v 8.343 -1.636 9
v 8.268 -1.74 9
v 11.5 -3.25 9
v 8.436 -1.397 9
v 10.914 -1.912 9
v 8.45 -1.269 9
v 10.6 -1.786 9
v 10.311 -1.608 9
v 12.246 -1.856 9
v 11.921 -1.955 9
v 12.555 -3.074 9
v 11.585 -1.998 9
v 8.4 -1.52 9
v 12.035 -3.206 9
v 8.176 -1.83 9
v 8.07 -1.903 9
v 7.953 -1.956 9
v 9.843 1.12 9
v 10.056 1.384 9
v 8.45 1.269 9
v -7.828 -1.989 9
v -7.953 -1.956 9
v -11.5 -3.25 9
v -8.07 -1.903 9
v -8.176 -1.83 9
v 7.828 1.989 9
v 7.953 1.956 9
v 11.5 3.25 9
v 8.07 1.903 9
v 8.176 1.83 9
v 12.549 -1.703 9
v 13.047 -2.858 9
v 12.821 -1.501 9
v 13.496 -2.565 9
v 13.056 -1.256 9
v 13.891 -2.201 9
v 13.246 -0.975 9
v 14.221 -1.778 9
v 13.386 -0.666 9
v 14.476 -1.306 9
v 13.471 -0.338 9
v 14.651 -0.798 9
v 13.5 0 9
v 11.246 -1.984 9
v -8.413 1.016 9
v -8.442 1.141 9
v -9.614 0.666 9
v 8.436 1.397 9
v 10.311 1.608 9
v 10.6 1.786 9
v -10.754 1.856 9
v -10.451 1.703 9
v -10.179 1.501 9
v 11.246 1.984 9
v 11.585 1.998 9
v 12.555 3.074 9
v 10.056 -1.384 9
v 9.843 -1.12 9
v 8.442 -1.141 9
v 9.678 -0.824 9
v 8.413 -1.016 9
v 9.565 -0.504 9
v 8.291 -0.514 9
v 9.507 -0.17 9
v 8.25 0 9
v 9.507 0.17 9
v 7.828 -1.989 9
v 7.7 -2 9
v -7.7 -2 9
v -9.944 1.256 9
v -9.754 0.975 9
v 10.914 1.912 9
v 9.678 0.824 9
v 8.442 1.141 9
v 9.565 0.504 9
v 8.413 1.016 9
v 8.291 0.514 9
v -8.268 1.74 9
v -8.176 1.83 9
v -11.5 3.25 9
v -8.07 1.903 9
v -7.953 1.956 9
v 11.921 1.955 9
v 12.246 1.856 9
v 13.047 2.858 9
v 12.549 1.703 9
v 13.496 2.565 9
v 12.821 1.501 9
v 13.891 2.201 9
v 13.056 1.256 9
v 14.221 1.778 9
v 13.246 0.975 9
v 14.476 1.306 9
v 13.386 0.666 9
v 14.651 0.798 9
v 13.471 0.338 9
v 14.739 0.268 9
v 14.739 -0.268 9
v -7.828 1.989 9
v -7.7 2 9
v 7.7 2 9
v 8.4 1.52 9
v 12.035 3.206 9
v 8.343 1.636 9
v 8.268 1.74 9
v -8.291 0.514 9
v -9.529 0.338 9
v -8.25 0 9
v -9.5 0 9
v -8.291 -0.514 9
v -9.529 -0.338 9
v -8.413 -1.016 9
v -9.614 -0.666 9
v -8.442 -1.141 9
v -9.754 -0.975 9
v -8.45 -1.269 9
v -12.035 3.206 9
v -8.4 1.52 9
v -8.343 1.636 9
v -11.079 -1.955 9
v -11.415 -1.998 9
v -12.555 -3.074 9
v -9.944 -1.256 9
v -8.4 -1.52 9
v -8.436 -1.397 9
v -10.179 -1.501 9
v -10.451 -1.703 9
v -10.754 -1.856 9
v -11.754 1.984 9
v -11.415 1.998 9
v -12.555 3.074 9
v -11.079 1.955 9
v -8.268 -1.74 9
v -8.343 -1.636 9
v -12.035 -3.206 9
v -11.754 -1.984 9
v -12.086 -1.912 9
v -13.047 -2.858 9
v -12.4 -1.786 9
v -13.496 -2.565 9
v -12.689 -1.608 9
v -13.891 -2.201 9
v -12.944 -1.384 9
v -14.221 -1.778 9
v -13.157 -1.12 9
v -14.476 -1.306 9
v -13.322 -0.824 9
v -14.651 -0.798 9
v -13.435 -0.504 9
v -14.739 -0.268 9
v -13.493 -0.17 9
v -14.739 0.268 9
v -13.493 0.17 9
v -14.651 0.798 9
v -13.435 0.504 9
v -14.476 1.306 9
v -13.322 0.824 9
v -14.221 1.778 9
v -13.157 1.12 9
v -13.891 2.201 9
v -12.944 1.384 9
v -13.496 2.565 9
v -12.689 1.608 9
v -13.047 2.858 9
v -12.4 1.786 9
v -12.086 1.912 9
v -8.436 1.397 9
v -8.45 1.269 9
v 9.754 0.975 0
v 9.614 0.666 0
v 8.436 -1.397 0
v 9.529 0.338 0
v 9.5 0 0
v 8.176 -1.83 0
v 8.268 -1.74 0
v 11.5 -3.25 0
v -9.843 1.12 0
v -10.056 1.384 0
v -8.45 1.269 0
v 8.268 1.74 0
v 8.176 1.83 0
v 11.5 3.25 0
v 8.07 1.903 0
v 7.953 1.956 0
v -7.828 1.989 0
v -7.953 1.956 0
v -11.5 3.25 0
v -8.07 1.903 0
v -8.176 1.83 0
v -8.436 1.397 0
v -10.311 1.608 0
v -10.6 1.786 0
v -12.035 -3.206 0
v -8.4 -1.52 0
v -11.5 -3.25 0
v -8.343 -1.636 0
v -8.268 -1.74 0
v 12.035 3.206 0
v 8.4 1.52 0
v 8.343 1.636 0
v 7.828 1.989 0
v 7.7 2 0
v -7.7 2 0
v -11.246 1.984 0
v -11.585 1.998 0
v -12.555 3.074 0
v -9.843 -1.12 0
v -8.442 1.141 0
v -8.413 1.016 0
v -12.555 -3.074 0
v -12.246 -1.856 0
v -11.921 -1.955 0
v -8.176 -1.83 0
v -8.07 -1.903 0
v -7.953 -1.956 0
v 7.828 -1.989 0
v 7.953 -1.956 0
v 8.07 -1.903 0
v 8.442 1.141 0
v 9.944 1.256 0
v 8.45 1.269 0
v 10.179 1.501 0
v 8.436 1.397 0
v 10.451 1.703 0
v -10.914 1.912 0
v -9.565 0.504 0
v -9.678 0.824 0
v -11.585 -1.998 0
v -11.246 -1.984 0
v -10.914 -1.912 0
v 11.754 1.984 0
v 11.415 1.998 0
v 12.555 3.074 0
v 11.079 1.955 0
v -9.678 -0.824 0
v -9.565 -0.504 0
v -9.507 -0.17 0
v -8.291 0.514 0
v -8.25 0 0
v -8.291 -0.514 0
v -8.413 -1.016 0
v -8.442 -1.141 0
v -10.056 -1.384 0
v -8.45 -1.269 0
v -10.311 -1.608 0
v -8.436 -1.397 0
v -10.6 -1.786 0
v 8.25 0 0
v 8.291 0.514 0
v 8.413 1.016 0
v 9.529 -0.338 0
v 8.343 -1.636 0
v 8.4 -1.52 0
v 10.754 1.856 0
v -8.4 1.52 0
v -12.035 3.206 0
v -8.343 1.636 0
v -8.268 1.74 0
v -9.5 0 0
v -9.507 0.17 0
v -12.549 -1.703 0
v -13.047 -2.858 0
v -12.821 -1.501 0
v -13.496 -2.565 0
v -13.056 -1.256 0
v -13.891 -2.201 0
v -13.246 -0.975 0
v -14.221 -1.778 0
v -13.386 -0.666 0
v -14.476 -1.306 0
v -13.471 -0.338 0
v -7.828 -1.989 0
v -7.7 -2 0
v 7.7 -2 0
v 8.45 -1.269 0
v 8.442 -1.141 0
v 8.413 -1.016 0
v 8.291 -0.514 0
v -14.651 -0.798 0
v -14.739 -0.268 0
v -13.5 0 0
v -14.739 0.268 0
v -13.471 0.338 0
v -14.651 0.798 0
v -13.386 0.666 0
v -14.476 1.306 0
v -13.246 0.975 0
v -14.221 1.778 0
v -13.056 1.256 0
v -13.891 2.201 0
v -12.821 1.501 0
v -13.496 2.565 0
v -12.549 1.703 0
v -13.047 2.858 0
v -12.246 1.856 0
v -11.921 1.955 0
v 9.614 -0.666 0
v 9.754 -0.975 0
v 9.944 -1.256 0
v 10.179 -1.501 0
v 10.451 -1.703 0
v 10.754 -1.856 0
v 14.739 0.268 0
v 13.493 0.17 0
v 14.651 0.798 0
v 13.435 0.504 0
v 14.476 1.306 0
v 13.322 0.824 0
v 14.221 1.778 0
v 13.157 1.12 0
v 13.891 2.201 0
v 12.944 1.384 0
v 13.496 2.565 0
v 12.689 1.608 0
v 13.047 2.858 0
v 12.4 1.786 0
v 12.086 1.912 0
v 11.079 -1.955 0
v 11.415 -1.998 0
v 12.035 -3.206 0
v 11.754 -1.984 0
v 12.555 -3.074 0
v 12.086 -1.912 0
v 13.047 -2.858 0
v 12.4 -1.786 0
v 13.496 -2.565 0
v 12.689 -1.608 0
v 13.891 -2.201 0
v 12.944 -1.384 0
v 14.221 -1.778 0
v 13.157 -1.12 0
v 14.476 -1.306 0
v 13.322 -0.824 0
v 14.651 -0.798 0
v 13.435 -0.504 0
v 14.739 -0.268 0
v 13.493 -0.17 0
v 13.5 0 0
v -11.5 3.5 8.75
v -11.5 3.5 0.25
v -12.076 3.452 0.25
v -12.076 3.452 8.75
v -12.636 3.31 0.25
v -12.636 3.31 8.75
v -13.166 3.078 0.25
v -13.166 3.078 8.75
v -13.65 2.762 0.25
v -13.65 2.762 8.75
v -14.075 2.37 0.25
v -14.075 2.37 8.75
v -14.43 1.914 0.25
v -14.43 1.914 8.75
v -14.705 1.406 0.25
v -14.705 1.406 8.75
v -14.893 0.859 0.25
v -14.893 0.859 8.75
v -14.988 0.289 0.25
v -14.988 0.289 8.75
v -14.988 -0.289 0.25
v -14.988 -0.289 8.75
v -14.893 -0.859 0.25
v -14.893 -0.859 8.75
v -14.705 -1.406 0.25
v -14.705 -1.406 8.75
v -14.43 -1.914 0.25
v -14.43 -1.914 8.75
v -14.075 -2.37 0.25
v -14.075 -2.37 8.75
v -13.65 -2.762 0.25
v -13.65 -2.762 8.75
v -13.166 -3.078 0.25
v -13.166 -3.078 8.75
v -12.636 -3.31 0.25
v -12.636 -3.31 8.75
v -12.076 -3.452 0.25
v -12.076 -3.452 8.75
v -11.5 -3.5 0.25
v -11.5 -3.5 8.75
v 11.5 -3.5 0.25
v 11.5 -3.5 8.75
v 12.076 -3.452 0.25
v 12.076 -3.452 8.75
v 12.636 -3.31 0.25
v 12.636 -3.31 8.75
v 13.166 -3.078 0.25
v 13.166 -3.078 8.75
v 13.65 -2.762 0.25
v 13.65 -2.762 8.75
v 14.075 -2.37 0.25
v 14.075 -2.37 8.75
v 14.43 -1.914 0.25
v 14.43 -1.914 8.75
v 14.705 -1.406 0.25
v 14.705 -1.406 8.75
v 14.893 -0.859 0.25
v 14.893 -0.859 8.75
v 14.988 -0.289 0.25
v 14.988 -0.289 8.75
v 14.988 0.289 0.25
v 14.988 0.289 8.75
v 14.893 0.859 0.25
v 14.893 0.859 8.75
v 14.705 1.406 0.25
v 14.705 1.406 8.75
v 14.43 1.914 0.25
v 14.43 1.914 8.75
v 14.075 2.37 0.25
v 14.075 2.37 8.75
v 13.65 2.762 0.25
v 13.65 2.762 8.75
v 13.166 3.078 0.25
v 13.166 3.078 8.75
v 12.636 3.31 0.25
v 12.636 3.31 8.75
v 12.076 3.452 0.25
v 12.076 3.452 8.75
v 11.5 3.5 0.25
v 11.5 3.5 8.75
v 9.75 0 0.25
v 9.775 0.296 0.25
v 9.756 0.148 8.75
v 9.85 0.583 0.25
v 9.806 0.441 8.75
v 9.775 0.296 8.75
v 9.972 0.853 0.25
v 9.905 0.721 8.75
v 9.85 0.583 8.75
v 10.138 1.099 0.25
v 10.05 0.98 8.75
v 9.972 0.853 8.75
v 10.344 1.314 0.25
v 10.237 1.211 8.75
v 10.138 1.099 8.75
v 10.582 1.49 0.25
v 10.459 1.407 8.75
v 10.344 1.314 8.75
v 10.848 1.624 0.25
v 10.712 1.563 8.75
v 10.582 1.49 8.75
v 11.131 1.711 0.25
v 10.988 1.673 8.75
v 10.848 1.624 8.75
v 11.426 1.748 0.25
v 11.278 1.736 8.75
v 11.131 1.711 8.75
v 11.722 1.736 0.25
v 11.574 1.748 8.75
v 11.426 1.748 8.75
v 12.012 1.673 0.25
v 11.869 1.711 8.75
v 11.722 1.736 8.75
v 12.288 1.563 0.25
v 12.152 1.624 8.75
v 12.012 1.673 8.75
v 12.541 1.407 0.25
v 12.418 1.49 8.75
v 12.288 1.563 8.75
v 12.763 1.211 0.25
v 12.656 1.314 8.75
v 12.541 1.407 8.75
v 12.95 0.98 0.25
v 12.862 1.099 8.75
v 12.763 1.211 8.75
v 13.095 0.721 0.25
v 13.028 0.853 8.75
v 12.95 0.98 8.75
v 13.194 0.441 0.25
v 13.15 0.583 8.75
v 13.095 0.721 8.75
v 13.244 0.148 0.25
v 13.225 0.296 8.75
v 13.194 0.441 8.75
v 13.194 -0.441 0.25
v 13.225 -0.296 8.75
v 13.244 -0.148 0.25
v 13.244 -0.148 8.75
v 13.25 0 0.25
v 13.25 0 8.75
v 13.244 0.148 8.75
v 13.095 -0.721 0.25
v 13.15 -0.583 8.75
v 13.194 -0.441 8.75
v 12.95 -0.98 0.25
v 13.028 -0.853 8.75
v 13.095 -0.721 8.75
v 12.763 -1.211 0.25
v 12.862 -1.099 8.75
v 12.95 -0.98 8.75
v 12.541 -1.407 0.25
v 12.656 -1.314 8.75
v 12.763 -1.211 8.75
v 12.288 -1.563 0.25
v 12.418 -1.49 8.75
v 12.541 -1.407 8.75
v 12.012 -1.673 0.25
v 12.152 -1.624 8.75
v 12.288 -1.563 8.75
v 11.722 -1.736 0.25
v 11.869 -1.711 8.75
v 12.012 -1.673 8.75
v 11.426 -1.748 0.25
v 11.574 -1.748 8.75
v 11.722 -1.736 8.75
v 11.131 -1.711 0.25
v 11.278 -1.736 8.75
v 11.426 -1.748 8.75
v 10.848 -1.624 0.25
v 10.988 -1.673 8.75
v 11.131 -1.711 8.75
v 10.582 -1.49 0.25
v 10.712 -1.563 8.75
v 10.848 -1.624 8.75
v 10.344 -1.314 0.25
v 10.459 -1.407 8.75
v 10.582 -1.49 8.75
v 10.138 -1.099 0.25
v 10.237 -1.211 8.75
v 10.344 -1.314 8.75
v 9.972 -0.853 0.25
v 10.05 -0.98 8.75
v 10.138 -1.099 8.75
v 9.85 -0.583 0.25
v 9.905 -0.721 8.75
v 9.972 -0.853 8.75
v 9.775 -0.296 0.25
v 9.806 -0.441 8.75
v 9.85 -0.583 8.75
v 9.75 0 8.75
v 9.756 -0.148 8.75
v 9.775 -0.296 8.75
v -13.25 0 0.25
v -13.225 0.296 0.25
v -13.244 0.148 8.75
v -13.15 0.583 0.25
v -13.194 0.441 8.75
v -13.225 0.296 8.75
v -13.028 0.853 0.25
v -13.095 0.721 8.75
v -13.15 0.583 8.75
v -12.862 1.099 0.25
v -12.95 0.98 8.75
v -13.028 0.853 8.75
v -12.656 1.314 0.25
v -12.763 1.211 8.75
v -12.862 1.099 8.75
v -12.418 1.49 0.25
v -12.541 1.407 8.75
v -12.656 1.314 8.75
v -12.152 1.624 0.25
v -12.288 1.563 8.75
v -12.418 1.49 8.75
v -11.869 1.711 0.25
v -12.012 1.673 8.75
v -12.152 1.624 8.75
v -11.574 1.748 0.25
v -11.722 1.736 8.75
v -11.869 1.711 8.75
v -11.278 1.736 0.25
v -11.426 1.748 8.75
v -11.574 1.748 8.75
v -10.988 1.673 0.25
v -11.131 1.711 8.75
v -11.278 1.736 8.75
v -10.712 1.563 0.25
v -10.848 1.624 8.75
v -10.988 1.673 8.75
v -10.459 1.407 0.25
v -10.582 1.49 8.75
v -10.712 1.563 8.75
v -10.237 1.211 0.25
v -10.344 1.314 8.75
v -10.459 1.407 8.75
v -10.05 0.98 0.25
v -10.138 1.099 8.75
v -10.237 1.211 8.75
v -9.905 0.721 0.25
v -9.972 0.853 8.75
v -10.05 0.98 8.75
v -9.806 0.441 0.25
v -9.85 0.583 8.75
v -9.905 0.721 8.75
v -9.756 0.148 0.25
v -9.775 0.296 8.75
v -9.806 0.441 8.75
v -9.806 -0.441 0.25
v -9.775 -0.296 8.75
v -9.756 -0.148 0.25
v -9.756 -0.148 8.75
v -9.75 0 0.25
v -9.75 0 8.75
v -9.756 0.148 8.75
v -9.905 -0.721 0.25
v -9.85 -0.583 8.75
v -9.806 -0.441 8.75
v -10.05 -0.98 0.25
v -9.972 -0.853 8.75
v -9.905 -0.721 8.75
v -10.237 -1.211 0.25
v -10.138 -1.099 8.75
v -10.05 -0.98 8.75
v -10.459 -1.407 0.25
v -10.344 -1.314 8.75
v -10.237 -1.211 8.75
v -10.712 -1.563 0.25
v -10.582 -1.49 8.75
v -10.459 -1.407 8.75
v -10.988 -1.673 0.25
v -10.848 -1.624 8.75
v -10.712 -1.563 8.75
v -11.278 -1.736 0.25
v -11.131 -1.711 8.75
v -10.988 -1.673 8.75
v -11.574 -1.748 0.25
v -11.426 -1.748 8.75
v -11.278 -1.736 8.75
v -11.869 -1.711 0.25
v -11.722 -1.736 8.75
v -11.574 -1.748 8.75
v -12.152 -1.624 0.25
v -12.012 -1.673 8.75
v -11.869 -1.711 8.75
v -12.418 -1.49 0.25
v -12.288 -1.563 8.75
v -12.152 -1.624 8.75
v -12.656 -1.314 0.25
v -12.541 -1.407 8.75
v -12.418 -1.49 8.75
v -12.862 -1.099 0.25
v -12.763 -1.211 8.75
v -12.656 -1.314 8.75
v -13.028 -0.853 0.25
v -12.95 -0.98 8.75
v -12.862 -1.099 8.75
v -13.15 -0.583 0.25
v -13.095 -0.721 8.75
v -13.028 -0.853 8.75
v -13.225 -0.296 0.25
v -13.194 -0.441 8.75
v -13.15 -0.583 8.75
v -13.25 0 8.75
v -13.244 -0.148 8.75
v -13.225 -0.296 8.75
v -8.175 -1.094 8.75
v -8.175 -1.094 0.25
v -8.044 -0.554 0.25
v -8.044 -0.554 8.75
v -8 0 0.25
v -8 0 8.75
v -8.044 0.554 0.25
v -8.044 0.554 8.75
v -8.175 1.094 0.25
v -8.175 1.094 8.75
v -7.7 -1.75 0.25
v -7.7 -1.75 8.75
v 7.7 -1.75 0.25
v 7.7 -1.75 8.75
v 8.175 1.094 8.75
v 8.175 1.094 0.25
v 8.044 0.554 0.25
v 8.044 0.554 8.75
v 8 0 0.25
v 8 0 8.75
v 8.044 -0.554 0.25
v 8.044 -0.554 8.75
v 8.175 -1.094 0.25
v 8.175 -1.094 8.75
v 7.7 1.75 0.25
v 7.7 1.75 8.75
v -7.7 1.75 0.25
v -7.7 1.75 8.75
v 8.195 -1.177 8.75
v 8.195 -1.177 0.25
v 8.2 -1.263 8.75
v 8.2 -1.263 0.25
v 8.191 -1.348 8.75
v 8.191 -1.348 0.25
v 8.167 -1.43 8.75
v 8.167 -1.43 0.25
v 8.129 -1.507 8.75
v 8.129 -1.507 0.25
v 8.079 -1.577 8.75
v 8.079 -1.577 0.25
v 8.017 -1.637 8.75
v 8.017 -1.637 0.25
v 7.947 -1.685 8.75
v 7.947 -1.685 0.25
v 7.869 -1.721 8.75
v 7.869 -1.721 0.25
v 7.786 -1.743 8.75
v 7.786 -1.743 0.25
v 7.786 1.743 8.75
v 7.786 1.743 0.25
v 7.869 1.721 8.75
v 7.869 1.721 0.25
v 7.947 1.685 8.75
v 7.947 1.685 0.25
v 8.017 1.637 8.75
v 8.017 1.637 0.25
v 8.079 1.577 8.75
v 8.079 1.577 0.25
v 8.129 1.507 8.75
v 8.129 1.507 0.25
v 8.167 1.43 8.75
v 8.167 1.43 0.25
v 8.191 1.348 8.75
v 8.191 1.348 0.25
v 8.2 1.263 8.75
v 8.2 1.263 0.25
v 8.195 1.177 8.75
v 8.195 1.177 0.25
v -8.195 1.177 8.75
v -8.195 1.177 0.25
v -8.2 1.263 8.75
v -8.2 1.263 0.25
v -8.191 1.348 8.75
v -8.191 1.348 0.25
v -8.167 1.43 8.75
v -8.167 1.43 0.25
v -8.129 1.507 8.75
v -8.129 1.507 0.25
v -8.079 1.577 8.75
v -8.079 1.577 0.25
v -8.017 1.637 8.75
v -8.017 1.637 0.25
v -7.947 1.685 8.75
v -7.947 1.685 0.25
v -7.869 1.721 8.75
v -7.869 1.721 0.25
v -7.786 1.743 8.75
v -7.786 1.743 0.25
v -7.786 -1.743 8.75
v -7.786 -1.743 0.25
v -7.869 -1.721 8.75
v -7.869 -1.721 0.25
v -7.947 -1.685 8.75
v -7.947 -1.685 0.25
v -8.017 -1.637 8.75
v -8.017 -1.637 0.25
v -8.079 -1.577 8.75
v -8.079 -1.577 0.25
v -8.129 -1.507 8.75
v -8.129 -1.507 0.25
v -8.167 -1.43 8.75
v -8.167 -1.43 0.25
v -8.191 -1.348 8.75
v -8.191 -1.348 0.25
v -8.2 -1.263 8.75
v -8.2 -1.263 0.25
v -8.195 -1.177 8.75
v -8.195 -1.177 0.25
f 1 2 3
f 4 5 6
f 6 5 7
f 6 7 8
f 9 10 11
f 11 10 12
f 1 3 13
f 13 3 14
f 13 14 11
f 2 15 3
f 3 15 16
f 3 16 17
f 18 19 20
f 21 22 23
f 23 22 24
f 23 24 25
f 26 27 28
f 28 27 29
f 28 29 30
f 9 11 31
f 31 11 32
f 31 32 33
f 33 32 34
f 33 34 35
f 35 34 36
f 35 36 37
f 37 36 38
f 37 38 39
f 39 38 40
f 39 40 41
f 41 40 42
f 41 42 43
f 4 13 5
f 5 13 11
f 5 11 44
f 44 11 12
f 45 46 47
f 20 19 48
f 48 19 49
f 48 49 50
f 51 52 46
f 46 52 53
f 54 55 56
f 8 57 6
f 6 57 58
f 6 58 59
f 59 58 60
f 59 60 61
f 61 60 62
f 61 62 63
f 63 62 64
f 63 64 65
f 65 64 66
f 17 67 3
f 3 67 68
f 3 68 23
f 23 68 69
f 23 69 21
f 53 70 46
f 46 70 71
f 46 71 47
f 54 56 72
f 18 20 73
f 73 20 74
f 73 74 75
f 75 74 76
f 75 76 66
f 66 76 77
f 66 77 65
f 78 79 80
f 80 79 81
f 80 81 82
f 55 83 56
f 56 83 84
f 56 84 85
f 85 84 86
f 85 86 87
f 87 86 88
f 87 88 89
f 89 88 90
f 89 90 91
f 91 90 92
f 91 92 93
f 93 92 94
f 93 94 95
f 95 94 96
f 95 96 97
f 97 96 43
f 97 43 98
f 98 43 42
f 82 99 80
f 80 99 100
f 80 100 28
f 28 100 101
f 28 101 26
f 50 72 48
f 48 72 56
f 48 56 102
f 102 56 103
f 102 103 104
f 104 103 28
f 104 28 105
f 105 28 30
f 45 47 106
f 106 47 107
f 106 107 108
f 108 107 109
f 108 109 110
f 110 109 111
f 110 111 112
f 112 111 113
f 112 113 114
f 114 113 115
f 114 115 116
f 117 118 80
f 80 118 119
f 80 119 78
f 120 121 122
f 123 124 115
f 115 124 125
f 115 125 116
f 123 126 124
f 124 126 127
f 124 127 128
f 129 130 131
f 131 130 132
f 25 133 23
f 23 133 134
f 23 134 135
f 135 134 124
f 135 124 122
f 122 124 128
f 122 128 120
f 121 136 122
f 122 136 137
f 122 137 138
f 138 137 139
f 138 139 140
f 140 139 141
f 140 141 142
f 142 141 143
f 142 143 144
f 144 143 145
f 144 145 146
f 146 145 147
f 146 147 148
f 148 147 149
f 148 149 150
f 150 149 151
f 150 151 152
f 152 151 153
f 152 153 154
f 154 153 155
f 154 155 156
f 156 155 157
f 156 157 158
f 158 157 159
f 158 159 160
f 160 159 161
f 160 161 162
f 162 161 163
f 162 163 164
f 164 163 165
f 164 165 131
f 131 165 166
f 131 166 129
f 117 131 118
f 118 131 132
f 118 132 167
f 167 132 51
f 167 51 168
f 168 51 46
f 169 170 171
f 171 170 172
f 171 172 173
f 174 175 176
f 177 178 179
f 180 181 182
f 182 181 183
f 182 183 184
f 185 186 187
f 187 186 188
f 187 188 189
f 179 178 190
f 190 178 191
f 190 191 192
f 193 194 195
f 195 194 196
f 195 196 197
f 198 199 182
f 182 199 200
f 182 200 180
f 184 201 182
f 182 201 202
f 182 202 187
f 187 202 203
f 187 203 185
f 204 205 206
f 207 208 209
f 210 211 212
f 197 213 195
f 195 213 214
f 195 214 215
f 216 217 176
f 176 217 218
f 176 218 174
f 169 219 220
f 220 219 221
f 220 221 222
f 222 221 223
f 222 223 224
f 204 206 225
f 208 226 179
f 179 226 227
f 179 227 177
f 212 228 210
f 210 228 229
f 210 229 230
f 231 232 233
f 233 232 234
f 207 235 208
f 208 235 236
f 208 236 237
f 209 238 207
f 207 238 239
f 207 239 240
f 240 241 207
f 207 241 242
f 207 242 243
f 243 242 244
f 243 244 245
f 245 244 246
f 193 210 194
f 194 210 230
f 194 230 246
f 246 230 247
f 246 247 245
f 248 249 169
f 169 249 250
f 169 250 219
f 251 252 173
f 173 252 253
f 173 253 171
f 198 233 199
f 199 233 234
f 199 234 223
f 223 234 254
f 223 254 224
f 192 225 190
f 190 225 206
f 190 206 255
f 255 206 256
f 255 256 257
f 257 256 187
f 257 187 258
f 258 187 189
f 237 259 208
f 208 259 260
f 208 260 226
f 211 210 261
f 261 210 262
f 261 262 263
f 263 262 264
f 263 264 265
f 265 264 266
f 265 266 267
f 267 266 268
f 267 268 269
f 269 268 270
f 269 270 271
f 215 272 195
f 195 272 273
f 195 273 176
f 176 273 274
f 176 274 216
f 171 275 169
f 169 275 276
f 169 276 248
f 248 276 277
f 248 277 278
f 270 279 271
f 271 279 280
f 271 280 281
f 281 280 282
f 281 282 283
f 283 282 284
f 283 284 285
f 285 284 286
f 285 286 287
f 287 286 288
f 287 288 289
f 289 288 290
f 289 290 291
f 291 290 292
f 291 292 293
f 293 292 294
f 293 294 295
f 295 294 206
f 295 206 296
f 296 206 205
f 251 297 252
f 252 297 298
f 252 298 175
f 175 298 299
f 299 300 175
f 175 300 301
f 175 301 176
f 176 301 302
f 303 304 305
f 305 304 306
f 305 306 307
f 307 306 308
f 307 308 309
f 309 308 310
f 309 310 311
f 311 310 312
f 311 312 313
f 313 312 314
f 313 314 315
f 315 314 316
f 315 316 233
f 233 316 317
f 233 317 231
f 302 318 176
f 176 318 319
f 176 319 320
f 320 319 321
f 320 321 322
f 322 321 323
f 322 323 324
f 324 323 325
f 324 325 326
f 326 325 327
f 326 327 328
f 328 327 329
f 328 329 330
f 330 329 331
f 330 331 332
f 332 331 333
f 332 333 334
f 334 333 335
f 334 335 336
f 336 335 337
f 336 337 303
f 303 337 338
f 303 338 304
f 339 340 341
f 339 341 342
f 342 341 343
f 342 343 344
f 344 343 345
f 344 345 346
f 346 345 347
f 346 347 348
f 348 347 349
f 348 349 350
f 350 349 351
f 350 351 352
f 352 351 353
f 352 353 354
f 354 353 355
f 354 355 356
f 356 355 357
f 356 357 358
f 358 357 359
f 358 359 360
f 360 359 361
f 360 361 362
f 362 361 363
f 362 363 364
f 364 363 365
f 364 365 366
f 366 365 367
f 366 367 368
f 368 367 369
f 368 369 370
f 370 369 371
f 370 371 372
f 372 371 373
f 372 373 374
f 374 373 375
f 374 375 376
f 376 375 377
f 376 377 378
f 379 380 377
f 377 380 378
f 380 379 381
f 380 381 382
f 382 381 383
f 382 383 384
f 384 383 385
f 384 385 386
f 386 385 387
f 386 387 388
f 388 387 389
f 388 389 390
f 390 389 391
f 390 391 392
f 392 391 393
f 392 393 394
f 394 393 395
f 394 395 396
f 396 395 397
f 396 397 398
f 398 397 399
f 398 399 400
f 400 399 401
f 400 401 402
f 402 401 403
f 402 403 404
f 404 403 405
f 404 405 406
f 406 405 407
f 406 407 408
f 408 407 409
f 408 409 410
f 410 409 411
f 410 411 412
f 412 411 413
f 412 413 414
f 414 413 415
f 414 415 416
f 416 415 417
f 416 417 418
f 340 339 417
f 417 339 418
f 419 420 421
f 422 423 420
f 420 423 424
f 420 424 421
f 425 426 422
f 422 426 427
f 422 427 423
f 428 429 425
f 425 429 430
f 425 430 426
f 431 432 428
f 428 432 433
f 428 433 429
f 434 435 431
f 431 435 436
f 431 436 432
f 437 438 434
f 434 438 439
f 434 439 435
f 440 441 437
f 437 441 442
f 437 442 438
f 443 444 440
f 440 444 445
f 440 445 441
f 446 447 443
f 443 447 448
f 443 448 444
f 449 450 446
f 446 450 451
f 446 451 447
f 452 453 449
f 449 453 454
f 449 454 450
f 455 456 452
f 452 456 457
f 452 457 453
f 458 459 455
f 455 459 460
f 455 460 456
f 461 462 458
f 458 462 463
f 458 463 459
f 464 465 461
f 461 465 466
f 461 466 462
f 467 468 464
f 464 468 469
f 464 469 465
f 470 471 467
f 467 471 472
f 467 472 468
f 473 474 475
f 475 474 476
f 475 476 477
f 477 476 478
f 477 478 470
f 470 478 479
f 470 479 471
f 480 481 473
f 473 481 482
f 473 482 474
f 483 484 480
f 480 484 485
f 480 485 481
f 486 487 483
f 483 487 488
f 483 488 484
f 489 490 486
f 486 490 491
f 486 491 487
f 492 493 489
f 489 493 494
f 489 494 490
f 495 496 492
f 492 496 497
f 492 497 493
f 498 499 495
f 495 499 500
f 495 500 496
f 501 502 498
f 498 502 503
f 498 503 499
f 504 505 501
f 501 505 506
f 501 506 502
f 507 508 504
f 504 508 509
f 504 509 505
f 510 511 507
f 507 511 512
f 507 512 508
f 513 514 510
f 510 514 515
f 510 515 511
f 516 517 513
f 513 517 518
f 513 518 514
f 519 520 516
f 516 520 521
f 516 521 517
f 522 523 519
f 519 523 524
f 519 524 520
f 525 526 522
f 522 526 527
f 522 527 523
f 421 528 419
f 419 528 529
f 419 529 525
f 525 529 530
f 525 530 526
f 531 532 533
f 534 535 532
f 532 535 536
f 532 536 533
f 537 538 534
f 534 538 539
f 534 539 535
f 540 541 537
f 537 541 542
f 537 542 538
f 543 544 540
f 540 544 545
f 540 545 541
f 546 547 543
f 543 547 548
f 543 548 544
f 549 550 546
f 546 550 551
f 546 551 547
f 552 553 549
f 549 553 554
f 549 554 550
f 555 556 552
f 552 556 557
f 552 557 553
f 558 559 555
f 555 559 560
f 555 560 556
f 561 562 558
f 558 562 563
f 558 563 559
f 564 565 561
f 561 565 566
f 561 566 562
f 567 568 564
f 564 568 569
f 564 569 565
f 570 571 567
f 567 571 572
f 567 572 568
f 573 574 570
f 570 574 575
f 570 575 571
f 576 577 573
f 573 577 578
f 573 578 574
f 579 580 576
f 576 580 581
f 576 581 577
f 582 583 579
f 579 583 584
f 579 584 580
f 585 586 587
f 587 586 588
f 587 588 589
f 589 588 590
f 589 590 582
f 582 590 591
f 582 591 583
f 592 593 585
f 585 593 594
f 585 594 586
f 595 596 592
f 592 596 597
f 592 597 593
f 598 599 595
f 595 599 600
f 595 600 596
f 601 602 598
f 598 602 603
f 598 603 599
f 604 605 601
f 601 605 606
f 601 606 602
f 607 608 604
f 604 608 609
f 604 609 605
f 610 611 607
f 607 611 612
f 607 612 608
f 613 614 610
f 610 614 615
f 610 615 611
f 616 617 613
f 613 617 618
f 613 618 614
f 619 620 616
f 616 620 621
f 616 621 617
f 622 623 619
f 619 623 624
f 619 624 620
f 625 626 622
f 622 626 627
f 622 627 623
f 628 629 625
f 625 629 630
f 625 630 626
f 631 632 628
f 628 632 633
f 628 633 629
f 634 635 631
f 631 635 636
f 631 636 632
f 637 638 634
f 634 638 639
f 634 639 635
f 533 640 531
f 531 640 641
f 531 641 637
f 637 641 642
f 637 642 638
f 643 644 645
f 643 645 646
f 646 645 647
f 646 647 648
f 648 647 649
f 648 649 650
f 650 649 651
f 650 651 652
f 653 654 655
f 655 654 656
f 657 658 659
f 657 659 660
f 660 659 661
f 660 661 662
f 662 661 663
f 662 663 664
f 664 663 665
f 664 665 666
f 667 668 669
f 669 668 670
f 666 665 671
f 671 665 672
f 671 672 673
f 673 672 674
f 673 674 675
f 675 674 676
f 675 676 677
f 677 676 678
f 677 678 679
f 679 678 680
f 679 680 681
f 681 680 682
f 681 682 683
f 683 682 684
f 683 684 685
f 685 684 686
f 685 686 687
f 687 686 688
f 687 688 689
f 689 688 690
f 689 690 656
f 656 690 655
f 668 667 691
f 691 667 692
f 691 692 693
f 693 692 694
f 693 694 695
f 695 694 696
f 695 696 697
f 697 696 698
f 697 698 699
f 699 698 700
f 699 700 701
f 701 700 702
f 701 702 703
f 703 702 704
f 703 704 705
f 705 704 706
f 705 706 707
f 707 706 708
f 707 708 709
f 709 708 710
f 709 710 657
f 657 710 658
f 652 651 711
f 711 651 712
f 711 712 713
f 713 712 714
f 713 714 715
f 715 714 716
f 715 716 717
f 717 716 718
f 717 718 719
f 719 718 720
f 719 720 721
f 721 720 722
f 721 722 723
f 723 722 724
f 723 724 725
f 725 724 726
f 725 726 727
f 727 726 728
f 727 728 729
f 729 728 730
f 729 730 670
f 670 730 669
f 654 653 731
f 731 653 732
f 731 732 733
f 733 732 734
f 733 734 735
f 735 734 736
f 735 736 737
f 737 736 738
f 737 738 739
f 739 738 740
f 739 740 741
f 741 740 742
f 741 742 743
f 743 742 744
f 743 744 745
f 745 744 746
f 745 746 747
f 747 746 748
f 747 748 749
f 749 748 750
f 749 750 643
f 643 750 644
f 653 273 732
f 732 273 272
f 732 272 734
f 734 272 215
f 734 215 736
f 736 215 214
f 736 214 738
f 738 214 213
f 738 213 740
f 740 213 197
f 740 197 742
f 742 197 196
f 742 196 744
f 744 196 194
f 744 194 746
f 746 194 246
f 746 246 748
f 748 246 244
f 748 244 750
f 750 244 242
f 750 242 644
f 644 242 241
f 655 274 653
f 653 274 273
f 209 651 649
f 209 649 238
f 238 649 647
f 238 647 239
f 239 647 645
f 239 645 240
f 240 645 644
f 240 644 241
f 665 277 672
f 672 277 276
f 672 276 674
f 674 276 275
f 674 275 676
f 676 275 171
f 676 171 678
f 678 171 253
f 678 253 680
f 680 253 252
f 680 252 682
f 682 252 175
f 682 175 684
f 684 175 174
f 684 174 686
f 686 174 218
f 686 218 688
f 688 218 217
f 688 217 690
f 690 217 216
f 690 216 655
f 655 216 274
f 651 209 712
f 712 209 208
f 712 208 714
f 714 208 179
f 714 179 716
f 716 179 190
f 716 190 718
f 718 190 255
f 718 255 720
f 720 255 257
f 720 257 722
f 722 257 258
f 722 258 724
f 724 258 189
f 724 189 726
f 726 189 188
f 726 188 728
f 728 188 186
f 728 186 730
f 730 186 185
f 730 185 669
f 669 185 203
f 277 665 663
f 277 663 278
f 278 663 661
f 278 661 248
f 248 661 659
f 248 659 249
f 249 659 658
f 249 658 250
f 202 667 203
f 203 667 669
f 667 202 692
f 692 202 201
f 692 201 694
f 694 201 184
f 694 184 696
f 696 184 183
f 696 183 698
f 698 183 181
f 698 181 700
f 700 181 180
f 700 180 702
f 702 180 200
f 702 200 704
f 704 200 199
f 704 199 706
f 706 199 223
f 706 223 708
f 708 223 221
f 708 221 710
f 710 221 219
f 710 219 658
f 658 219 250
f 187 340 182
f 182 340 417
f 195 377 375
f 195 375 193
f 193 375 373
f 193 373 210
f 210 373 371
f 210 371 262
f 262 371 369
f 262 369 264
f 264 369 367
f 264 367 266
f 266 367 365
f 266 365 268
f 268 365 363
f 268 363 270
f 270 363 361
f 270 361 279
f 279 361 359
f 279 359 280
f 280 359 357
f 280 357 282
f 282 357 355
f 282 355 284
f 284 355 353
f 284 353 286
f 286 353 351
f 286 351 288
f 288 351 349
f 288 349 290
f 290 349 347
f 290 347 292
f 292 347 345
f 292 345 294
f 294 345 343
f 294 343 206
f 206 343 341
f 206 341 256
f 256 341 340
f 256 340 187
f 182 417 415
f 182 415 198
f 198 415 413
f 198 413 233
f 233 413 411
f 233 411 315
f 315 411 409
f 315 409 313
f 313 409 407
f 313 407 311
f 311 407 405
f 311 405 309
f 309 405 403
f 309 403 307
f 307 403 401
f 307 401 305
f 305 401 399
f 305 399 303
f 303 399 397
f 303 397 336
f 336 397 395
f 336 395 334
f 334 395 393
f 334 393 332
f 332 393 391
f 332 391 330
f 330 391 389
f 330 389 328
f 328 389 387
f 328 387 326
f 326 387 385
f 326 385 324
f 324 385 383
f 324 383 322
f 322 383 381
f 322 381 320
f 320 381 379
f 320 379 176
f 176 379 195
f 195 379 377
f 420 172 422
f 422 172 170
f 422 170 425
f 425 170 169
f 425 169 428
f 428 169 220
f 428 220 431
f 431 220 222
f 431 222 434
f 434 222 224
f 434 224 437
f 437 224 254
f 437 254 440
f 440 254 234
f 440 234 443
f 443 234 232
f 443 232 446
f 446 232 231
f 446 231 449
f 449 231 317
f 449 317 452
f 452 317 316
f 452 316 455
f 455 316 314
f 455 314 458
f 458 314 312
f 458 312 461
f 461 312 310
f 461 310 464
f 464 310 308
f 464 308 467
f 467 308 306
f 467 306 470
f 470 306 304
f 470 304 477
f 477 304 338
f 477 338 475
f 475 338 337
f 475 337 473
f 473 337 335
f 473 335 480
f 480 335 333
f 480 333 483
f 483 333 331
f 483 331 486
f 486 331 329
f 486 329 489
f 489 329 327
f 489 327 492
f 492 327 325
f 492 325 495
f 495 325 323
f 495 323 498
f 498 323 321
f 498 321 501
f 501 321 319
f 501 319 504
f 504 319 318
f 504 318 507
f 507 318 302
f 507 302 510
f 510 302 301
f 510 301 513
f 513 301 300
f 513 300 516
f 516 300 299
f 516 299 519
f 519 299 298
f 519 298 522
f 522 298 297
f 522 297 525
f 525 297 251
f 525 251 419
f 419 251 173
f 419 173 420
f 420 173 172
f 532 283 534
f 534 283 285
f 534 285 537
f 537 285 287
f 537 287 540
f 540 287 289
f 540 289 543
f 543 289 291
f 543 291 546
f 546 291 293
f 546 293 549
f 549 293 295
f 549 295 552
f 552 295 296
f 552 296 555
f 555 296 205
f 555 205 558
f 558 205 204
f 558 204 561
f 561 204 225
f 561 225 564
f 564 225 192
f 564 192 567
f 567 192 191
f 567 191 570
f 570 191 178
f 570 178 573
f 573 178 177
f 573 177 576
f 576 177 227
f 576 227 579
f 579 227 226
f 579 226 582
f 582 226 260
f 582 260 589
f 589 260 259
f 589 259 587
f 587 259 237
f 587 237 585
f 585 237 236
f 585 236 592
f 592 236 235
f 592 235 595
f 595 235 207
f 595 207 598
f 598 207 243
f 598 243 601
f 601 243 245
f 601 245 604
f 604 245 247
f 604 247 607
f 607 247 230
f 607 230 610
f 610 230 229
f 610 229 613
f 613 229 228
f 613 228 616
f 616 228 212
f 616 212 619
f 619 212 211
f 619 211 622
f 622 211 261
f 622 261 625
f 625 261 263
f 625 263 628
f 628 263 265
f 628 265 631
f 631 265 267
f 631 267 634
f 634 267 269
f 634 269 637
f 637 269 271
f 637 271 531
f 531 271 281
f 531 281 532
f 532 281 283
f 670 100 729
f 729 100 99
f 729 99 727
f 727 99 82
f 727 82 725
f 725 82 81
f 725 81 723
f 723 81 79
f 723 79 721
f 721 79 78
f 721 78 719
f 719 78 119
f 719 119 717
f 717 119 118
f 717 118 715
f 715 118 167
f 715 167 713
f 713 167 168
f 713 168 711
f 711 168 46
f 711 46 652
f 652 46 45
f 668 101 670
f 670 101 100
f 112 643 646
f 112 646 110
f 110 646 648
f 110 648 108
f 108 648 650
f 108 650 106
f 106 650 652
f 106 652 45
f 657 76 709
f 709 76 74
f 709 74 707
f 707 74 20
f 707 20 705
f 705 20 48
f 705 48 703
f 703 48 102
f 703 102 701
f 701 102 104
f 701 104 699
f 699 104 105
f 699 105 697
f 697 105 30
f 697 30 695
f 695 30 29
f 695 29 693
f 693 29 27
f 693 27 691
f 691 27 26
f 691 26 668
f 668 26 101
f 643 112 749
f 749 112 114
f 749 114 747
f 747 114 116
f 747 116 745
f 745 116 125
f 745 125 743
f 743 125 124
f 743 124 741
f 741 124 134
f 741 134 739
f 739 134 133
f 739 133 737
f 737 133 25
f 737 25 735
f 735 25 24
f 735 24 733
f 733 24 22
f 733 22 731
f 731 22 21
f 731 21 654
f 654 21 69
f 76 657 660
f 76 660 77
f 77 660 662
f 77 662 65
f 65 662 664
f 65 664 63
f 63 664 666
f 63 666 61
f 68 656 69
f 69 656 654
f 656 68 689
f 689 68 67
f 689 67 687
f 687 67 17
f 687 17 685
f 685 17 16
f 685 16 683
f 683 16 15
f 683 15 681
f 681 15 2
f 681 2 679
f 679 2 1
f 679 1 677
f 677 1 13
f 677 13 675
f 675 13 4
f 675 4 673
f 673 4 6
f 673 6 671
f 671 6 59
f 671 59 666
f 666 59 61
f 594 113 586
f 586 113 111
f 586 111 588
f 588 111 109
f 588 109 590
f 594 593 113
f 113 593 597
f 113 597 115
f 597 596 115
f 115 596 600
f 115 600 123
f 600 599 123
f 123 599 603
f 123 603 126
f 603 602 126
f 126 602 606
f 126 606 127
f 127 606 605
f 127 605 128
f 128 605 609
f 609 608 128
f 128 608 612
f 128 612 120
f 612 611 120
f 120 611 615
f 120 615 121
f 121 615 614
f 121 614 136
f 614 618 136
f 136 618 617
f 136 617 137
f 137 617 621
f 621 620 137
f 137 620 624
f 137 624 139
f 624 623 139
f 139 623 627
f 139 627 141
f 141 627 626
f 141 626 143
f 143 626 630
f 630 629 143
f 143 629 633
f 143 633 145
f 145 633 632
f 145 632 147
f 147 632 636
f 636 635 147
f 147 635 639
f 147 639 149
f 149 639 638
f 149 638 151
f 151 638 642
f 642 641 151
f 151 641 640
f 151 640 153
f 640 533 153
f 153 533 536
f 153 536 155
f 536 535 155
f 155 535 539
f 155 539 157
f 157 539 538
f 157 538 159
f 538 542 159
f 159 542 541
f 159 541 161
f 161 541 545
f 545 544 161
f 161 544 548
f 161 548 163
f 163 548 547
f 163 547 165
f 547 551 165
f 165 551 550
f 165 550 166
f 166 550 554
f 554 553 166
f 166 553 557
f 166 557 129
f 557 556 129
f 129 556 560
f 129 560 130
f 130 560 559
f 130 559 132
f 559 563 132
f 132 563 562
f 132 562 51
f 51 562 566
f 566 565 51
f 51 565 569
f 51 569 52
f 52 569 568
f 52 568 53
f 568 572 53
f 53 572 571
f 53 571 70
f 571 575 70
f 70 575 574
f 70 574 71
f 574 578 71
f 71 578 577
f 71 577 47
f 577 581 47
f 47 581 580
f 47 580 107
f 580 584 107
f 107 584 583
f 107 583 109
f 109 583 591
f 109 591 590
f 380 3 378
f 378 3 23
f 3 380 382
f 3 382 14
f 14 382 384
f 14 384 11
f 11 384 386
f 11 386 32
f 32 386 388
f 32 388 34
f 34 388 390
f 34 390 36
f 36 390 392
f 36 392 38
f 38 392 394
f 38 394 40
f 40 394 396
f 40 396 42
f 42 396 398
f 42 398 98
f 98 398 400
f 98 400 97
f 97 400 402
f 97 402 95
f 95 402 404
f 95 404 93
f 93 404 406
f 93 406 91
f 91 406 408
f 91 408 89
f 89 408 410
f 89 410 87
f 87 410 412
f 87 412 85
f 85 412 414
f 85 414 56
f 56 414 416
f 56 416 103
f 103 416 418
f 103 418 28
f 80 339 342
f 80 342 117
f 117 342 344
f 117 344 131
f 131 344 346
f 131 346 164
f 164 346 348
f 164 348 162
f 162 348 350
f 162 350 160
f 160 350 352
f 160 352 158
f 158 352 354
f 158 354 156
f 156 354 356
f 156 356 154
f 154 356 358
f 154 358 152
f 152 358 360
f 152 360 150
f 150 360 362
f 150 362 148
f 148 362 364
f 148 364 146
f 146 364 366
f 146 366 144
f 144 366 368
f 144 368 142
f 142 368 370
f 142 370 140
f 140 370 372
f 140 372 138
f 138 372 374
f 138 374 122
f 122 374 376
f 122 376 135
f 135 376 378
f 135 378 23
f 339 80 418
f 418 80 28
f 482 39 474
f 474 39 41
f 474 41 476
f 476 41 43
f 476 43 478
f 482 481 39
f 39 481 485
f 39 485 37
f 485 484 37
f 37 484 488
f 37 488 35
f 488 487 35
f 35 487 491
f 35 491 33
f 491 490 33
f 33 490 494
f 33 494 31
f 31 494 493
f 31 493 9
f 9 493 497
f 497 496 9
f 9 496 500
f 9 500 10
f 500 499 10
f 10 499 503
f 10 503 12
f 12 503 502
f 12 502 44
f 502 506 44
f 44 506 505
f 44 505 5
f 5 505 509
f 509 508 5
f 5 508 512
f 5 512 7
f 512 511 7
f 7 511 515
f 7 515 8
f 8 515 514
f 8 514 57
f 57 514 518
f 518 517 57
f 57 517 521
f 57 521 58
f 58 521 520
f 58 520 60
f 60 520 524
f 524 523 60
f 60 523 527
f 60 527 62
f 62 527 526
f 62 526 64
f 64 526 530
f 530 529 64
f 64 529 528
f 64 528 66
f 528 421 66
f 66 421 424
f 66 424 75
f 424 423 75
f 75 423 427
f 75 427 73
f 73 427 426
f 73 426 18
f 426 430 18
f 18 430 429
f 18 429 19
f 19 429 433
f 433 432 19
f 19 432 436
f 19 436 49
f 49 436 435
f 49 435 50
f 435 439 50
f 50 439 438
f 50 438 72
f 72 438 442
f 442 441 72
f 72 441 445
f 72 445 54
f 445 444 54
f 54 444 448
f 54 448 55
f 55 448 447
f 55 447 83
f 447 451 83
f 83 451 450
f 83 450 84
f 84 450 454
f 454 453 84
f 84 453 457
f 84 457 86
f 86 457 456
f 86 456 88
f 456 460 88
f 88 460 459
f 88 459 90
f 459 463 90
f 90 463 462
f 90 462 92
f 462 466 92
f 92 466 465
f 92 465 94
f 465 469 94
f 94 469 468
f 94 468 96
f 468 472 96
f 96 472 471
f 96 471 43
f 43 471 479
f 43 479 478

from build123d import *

# Parameters (mm, degrees)
SKETCH1_R           = 1.75
BOSS_EXTRUDE1_DEPTH = 9
FILLET1_R           = 0.5
CHAMFER2_SIZE       = 0.25


with BuildPart() as part:
    # Sketch1 → Boss-Extrude1 (new body)
    with BuildSketch(Plane.XY):
        with BuildLine():
            Line((-11.5, 3.5), (11.5, 3.5))
            ThreePointArc((11.5, 3.5), (15, 0), (11.5, -3.5))
            Line((11.5, -3.5), (-11.5, -3.5))
            ThreePointArc((-11.5, -3.5), (-15, 0), (-11.5, 3.5))
        make_face()
        with Locations((-11.5, 0)):
            Circle(SKETCH1_R, mode=Mode.SUBTRACT)
        with Locations((11.5, 0)):
            Circle(SKETCH1_R, mode=Mode.SUBTRACT)
        with BuildLine():
            Line((-8.468911087, 1.75), (8.468911087, 1.75))
            ThreePointArc((8.468911087, 1.75), (8, 0), (8.468911087, -1.75))
            Line((8.468911087, -1.75), (-8.468911087, -1.75))
            ThreePointArc((-8.468911087, -1.75), (-8, 0), (-8.468911087, 1.75))
        make_face(mode=Mode.SUBTRACT)
    extrude(amount=BOSS_EXTRUDE1_DEPTH)

    # Fillet1
    fillet1_edges = [part.edges().sort_by_distance(p)[0] for p in [
        (-8.468911087, 1.75, 4.5),
        (-8.468911087, -1.75, 4.5),
        (8.468911087, -1.75, 4.5),
        (8.468911087, 1.75, 4.5),
    ]]
    fillet(fillet1_edges, radius=FILLET1_R)

    # Chamfer2
    chamfer2_edges = [part.edges().sort_by_distance(p)[0] for p in [
        (9.75, 0, 0),
        (9.75, 0, 9),
        (15, 0, 9),
        (-13.25, 0, 0),
        (-13.25, 0, 9),
        (0, 3.5, 9),
        (0, -1.75, 0),
        (0, -1.75, 9),
        (8, 0, 0),
        (8, 0, 9),
        (0, 1.75, 0),
        (0, 1.75, 9),
        (-8, 0, 0),
        (-8, 0, 9),
        (8.105375255, -1.543150985, 0),
        (8.105375255, -1.543150985, 9),
        (8.105375255, 1.543150985, 0),
        (8.105375255, 1.543150985, 9),
        (-8.105375255, 1.543150985, 0),
        (-8.105375255, 1.543150985, 9),
        (-8.105375255, -1.543150985, 0),
        (-8.105375255, -1.543150985, 9),
        (-15, 0, 9),
        (0, 3.5, 0),
        (15, 0, 0),
        (0, -3.5, 0),
        (-15, 0, 0),
        (0, -3.5, 9),
    ]]
    chamfer(chamfer2_edges, length=CHAMFER2_SIZE)


solid = part.part
